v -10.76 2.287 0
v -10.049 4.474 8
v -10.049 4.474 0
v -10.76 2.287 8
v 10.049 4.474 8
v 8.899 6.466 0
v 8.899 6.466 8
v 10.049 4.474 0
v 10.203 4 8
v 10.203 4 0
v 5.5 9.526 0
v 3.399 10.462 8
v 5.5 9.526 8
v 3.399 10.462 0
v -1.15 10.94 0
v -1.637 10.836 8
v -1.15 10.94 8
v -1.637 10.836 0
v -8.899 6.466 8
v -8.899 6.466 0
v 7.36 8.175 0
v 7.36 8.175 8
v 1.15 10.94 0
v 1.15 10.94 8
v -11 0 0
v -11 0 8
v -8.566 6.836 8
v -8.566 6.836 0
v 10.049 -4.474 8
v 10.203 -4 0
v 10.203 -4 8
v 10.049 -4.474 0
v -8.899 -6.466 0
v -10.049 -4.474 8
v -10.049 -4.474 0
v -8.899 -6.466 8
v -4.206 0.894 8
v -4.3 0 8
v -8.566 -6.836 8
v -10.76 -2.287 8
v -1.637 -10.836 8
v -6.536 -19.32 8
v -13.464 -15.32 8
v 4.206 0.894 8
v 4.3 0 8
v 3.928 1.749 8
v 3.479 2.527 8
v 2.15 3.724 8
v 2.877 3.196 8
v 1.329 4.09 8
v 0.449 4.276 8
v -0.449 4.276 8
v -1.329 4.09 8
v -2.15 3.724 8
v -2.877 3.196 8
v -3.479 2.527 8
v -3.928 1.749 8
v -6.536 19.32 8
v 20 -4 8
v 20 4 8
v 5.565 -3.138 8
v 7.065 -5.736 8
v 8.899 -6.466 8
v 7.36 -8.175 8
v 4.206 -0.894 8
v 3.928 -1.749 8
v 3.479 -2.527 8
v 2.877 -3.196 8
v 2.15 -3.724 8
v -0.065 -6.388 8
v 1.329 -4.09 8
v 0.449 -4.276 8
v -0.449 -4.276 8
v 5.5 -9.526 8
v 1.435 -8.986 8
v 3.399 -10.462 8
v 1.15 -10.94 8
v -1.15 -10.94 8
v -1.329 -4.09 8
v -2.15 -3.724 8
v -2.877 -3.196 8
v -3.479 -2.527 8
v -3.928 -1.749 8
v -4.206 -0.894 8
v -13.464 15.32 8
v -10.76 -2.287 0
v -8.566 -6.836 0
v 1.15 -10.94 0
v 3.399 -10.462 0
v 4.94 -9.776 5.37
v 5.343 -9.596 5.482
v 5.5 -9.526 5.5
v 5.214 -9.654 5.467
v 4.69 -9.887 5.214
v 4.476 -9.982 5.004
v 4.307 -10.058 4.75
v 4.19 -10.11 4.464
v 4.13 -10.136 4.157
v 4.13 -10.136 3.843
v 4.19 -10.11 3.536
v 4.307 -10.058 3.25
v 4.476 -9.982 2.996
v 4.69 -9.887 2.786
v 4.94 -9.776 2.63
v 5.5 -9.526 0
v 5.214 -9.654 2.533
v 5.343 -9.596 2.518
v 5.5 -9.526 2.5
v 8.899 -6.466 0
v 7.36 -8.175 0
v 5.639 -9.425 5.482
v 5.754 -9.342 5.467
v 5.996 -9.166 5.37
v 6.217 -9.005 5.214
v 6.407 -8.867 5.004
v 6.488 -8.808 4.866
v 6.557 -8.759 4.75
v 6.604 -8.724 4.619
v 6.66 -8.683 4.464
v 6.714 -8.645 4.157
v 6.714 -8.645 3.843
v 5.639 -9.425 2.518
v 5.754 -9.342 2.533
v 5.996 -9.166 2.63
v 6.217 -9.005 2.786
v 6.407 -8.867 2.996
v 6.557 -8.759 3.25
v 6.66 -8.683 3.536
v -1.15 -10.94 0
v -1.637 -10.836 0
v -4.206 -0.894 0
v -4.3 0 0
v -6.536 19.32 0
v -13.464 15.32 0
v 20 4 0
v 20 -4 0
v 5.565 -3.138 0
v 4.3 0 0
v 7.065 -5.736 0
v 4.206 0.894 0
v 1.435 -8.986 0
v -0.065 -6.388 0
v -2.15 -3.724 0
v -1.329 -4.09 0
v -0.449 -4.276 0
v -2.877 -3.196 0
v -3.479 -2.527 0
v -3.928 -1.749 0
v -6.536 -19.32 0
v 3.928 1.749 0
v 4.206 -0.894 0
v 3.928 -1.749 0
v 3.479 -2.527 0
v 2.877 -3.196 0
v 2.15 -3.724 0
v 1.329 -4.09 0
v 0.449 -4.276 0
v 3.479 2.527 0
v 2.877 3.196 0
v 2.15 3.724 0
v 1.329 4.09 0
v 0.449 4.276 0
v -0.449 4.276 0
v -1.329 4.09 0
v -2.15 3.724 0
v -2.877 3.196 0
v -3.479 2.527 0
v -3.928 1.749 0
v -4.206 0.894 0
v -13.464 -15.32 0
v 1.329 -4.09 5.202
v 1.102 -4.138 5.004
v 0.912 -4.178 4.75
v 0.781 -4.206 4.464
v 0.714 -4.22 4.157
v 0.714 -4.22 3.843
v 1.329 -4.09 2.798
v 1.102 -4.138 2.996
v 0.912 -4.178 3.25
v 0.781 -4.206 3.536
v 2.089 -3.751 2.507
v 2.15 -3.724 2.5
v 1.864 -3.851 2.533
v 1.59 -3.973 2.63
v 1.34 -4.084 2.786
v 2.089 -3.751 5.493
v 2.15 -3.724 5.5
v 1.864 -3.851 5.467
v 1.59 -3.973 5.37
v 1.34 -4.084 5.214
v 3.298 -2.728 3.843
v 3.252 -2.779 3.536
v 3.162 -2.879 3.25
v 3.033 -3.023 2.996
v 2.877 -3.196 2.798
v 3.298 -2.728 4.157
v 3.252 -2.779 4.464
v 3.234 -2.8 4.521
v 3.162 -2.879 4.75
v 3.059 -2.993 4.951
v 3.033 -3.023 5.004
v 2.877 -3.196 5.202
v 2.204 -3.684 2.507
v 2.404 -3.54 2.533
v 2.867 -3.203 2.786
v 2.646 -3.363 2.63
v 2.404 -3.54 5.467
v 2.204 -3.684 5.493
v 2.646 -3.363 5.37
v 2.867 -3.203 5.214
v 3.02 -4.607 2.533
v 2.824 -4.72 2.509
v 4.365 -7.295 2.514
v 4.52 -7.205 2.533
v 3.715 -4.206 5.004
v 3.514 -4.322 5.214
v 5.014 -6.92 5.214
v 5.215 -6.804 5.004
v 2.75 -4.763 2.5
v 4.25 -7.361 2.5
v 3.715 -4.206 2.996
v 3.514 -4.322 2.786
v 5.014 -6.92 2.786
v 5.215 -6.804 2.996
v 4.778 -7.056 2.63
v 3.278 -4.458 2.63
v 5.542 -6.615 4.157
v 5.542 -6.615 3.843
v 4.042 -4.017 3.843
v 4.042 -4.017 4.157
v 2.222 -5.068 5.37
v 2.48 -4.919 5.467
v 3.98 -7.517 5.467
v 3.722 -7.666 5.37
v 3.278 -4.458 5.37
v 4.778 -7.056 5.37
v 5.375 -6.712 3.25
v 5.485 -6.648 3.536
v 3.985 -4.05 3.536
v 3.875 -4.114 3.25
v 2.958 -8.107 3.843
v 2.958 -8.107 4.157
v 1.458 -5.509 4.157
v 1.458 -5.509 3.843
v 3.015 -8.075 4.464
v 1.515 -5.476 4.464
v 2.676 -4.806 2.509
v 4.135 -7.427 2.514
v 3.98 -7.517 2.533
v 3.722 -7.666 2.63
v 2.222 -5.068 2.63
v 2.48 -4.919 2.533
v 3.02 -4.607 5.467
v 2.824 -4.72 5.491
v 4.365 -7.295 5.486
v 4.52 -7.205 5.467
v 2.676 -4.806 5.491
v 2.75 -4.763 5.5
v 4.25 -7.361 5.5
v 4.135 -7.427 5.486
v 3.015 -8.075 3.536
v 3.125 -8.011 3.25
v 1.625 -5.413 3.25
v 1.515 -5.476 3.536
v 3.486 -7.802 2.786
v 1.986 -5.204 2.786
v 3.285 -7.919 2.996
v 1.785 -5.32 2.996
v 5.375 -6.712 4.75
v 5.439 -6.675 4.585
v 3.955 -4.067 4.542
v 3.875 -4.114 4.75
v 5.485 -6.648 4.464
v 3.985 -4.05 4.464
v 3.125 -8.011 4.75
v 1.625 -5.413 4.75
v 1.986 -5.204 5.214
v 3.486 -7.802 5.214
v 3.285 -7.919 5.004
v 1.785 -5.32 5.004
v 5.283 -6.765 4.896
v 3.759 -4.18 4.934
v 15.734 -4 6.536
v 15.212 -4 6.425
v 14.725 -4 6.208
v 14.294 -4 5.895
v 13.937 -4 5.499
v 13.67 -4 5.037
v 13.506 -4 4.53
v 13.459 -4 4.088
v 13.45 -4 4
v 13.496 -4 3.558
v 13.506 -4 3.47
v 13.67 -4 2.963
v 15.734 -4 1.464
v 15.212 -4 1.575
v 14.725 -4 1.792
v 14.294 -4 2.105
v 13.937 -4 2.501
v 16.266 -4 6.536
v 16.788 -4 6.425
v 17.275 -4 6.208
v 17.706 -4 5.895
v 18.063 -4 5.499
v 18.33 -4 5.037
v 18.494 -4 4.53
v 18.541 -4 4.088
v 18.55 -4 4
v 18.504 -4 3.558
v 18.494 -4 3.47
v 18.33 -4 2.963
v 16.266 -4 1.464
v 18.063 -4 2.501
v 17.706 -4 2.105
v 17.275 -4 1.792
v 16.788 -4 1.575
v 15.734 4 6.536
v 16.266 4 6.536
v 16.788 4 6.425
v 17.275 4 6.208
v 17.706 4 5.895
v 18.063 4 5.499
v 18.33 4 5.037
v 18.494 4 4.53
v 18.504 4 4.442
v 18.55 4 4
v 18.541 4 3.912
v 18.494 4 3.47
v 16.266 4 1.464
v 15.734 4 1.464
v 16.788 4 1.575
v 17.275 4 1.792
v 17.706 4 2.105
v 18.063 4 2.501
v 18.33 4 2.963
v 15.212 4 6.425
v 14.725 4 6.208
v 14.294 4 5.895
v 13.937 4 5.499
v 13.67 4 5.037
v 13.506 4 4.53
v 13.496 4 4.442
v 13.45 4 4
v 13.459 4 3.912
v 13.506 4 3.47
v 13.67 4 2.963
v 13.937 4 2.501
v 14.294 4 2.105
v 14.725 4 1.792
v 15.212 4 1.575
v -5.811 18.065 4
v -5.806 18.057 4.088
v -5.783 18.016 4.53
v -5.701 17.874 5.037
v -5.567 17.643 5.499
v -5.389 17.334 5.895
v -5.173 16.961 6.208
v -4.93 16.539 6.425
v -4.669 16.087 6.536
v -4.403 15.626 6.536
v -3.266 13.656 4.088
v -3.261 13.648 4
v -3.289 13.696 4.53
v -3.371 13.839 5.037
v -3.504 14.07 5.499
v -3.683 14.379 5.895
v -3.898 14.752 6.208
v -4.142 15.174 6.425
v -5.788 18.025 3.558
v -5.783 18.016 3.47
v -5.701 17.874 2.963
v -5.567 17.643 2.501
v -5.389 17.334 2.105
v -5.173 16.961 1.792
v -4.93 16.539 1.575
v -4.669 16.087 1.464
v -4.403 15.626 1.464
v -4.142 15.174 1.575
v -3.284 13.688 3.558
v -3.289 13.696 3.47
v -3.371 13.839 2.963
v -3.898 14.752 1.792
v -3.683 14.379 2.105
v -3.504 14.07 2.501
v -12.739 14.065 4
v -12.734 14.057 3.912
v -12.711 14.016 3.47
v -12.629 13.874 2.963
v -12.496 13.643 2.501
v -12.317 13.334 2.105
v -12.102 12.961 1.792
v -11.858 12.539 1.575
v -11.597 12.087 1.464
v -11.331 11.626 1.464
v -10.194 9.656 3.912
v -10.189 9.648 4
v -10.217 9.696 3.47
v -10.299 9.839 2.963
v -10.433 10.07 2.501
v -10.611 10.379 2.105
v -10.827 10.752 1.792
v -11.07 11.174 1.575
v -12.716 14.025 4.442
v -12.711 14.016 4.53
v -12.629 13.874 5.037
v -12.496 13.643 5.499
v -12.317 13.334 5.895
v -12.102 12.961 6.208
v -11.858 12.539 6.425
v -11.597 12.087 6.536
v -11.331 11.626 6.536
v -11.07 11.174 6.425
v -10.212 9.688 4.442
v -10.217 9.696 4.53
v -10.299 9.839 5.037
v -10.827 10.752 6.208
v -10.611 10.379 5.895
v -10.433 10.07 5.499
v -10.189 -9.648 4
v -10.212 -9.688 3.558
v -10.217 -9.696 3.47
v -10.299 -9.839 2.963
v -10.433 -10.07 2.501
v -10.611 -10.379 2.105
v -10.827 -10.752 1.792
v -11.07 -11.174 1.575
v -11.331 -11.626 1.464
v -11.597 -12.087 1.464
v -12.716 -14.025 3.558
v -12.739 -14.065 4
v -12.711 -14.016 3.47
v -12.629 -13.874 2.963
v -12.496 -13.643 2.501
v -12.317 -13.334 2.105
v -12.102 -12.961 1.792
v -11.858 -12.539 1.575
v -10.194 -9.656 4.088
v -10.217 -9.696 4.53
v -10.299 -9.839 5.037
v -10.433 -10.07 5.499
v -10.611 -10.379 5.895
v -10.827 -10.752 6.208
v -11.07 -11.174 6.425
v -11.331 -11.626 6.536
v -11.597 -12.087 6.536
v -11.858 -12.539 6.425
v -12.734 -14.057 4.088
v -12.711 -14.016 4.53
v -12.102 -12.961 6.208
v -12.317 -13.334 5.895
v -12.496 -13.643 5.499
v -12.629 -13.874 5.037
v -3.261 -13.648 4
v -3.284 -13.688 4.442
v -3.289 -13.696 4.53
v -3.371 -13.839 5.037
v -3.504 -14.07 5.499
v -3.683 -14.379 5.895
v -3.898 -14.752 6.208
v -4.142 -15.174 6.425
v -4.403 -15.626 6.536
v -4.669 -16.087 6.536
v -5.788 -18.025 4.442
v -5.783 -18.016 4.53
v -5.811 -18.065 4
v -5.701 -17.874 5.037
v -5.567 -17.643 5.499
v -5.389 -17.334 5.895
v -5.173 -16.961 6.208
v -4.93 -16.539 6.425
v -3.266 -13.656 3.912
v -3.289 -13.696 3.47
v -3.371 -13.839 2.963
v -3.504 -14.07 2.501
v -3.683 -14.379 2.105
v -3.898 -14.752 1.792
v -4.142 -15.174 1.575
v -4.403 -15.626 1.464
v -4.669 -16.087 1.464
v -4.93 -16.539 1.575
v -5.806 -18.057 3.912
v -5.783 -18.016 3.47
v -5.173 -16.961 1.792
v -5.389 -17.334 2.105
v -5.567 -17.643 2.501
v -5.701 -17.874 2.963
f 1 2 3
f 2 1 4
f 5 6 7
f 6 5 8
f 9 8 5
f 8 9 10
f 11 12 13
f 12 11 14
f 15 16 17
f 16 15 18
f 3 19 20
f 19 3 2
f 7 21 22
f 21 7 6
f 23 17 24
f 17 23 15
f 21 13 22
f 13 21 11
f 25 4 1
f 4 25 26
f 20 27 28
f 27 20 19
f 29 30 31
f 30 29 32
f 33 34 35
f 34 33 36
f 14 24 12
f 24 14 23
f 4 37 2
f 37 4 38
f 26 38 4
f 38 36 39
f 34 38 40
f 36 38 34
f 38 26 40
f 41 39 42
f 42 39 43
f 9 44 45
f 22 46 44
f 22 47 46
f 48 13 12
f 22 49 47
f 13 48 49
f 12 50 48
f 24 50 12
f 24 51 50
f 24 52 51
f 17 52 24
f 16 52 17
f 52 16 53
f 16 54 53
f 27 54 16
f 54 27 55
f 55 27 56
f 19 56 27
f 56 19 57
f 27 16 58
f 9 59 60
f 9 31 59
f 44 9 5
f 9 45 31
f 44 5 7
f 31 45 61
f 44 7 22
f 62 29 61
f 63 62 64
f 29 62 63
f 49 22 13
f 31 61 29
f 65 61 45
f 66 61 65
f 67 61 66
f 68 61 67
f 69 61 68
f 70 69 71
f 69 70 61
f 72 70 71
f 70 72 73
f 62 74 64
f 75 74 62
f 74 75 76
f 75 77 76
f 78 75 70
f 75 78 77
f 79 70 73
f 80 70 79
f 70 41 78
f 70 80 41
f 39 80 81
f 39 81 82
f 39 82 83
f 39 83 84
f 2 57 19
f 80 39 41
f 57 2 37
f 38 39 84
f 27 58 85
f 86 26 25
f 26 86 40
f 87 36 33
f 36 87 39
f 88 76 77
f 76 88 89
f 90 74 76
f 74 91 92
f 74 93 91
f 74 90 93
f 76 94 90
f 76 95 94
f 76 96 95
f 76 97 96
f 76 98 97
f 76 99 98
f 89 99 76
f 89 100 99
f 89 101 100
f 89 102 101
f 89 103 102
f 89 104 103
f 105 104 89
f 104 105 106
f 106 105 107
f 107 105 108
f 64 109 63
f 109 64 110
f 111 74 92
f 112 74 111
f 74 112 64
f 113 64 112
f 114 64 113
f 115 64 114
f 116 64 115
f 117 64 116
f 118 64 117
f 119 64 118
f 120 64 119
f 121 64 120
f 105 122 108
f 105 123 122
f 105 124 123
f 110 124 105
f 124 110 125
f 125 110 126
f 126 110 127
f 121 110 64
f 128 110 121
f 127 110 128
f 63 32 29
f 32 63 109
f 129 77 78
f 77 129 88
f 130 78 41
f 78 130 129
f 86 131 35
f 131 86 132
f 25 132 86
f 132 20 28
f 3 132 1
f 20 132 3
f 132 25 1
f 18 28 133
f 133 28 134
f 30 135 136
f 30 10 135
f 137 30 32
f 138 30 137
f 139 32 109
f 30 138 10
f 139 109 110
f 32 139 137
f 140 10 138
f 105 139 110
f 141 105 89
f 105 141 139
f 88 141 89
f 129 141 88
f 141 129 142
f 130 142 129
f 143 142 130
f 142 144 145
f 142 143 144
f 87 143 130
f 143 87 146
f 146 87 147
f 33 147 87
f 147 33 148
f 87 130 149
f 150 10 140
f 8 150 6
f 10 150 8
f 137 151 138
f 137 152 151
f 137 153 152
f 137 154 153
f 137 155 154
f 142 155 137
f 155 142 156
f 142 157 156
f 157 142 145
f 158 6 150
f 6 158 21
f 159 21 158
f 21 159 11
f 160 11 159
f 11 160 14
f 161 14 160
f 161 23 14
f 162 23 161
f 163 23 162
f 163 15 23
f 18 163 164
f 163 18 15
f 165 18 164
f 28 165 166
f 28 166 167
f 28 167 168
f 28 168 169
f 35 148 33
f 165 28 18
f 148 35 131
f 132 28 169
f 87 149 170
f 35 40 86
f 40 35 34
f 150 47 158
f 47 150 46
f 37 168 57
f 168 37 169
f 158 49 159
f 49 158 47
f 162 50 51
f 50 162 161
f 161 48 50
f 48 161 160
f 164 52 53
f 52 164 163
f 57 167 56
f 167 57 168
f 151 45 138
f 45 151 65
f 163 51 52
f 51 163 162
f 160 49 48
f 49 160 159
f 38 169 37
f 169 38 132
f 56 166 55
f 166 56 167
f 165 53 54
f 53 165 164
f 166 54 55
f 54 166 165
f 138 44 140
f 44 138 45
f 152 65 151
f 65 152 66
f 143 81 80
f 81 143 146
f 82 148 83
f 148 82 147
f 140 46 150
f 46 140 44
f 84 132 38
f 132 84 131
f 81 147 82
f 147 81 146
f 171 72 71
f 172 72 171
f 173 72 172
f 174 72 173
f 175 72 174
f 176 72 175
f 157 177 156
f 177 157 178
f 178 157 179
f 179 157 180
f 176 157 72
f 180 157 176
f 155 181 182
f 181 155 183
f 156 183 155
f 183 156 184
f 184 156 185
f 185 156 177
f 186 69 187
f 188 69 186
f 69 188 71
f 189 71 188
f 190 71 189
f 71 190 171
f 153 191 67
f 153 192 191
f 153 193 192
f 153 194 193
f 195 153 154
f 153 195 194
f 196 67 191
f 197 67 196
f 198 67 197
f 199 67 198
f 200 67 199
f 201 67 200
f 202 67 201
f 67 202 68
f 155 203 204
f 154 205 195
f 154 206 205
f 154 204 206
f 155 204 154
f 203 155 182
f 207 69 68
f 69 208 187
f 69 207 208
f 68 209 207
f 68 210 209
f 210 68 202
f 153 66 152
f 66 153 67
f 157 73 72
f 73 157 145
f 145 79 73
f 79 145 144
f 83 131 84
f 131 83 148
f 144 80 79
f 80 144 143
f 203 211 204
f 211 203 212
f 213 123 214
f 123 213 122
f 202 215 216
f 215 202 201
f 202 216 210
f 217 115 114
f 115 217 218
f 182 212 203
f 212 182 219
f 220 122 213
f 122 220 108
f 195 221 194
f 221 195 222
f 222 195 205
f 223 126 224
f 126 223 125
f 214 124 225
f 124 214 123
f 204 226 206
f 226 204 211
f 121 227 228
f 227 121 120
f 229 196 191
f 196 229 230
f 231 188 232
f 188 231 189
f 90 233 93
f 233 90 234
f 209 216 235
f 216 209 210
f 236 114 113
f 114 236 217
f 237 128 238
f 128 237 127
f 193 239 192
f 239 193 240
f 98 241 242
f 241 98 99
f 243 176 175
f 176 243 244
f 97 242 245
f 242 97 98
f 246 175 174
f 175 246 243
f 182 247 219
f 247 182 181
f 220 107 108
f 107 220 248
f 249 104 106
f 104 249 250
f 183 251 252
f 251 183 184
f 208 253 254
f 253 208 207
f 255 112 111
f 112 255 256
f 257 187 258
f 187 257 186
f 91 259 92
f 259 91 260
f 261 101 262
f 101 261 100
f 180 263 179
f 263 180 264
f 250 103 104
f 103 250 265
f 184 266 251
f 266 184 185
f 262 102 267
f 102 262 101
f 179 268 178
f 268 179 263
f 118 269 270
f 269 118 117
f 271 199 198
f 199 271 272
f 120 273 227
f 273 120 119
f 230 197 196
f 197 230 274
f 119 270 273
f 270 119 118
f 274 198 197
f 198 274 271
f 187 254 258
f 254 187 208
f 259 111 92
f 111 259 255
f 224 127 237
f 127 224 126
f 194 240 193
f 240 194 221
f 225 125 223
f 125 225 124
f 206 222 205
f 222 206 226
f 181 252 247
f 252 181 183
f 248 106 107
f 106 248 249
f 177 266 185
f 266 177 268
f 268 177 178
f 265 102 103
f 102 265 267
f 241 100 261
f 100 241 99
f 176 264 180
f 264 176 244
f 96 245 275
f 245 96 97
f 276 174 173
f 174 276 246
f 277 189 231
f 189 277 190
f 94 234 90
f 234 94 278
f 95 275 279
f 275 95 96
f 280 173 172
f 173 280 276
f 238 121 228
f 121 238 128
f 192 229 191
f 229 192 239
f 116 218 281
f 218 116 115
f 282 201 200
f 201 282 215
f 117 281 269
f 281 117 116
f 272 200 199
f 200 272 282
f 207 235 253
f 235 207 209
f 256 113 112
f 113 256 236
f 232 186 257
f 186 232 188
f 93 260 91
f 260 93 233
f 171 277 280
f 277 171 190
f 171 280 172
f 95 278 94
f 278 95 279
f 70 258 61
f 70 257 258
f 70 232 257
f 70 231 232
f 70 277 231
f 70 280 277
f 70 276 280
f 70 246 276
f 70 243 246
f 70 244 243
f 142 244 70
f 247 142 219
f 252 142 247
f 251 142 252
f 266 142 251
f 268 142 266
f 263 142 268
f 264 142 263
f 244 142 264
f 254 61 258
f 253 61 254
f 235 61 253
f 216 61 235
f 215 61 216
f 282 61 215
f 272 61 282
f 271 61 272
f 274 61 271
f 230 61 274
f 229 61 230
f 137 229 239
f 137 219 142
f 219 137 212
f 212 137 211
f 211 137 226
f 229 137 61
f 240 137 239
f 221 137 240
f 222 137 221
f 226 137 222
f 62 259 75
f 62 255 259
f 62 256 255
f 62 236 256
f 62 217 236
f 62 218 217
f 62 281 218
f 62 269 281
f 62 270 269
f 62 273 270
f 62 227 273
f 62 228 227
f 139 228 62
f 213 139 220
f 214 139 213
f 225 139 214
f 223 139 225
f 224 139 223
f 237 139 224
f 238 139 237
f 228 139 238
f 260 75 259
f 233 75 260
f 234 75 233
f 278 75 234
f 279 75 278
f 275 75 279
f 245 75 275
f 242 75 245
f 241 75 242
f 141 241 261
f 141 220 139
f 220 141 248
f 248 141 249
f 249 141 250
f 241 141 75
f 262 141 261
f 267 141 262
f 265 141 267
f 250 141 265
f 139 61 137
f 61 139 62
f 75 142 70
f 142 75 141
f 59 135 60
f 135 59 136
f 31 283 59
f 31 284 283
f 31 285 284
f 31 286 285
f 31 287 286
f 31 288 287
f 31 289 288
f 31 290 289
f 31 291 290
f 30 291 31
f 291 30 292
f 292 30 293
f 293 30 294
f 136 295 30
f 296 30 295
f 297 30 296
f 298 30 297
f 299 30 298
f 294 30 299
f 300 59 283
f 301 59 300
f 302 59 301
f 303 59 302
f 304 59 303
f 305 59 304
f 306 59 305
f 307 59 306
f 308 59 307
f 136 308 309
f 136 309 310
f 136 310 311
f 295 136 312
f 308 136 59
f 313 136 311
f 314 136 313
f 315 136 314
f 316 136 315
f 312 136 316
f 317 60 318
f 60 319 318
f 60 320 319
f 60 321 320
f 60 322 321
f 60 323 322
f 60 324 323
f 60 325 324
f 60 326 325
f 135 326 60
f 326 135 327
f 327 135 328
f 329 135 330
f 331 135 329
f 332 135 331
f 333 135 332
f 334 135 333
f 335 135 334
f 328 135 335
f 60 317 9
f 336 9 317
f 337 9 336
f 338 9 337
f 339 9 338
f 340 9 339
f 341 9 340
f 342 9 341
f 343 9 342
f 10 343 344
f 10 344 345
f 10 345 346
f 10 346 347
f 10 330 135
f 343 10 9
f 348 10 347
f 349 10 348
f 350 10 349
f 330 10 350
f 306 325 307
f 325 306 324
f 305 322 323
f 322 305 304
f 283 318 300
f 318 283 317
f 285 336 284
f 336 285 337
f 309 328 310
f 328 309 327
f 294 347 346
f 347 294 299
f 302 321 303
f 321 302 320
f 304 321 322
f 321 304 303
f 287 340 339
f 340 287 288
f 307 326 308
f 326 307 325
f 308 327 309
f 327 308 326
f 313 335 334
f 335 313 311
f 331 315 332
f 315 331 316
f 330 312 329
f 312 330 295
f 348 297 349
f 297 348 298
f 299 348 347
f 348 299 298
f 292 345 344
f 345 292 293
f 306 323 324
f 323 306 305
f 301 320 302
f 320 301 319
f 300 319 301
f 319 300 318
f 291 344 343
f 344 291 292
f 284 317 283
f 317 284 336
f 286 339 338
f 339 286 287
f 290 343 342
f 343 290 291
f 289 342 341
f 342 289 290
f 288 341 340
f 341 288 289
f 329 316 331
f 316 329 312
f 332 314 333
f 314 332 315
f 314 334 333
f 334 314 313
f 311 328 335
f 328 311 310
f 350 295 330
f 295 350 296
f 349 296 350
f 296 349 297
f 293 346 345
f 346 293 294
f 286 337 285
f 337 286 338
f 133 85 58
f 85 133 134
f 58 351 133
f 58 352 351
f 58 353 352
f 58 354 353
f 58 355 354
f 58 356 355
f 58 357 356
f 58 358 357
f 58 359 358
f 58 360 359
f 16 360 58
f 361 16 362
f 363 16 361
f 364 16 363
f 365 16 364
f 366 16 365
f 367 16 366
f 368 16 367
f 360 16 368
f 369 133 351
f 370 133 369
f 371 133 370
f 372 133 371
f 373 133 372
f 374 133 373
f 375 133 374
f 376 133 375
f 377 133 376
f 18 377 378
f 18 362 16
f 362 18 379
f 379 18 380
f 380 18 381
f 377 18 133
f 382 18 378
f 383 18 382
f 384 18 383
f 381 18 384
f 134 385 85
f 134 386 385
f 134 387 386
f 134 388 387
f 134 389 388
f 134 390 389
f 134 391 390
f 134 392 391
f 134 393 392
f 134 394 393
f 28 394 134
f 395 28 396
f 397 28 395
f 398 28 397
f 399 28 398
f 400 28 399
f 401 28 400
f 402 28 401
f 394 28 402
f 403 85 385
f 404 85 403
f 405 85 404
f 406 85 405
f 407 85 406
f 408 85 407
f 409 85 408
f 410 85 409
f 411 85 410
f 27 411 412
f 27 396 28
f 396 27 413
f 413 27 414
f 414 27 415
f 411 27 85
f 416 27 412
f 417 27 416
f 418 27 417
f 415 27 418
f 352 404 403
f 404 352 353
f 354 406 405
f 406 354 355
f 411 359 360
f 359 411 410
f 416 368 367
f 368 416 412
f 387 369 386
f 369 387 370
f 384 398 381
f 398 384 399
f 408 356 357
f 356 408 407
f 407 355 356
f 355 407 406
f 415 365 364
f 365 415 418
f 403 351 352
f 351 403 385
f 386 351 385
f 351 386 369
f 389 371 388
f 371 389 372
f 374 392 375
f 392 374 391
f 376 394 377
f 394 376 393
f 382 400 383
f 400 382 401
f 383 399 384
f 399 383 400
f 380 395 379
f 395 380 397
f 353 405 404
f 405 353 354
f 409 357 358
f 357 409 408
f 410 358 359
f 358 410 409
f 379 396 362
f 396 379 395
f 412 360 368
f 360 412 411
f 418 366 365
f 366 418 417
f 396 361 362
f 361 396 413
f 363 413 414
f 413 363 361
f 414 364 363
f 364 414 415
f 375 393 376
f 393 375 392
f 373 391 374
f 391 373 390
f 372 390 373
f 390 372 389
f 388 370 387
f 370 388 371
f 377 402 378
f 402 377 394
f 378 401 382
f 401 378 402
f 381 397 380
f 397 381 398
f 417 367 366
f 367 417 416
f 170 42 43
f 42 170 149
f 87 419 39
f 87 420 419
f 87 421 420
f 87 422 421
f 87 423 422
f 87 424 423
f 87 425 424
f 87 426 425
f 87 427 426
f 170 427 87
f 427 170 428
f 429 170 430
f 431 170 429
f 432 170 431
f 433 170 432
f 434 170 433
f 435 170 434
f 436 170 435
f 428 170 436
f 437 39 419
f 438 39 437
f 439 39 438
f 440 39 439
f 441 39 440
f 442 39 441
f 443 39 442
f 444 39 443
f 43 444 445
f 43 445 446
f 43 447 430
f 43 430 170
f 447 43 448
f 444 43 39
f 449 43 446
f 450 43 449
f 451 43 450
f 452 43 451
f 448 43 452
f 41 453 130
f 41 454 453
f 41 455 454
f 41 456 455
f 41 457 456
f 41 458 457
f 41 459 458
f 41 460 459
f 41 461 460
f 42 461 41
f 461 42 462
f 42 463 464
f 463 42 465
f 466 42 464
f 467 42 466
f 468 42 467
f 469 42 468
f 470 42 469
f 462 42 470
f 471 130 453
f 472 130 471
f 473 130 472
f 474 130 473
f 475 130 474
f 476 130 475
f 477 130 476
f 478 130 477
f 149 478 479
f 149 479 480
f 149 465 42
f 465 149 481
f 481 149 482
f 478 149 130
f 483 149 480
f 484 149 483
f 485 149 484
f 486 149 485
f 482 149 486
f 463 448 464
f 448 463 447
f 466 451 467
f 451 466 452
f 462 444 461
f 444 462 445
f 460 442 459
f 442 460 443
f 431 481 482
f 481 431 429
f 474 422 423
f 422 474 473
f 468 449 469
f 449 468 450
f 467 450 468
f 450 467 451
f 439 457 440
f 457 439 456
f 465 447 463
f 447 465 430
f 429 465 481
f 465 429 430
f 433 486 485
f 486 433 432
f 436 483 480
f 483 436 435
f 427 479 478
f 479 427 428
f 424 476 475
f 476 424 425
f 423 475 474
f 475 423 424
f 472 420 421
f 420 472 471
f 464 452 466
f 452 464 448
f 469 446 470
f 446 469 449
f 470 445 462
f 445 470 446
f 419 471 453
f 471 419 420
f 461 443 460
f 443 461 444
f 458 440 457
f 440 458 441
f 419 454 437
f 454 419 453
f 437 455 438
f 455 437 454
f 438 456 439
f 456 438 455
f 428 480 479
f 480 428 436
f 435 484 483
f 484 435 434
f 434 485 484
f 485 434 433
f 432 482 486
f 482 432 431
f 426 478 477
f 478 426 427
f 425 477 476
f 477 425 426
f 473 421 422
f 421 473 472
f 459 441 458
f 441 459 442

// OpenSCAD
// Description: "Tablet stylus holder for Tapster 2 Plus"
// Project home: http://tapsterbot.com

beam_width    = 8;
hole_diameter = 5.1;
hole_radius   = hole_diameter / 2;

module beam(number_of_holes) {
    beam_length = number_of_holes * beam_width;
  difference() {
    // Draw the beam...
        translate([2,0,0])
    cube([beam_length-4,8,beam_width]);

         // Cut the holes...
    for (x=[10 : beam_width : beam_length]) {
      rotate([90,0,0])
      translate([x,beam_width/2,-10])
      cylinder(r=hole_radius, h=12, $fn=30);
         }
    }
}

union() {
  difference(){
      cylinder(r=11, h=8, $fn=30);

        translate([0,0,-5])
        cylinder(r=4.3, h=20, $fn=30);

        translate([0,0,4])
        rotate([60,90,0])
        cylinder(r=1.5, h=20, $fn=30);

        rotate(-60)
        translate([7,0,0])
        cube([3,6.5,30], center=true);

  }

  translate([6,-4,0])
  beam(2);

  rotate(120)
  translate([6,-4,0])
  beam(2);

  rotate(240)
  translate([6,-4,0])
  beam(2);
}
